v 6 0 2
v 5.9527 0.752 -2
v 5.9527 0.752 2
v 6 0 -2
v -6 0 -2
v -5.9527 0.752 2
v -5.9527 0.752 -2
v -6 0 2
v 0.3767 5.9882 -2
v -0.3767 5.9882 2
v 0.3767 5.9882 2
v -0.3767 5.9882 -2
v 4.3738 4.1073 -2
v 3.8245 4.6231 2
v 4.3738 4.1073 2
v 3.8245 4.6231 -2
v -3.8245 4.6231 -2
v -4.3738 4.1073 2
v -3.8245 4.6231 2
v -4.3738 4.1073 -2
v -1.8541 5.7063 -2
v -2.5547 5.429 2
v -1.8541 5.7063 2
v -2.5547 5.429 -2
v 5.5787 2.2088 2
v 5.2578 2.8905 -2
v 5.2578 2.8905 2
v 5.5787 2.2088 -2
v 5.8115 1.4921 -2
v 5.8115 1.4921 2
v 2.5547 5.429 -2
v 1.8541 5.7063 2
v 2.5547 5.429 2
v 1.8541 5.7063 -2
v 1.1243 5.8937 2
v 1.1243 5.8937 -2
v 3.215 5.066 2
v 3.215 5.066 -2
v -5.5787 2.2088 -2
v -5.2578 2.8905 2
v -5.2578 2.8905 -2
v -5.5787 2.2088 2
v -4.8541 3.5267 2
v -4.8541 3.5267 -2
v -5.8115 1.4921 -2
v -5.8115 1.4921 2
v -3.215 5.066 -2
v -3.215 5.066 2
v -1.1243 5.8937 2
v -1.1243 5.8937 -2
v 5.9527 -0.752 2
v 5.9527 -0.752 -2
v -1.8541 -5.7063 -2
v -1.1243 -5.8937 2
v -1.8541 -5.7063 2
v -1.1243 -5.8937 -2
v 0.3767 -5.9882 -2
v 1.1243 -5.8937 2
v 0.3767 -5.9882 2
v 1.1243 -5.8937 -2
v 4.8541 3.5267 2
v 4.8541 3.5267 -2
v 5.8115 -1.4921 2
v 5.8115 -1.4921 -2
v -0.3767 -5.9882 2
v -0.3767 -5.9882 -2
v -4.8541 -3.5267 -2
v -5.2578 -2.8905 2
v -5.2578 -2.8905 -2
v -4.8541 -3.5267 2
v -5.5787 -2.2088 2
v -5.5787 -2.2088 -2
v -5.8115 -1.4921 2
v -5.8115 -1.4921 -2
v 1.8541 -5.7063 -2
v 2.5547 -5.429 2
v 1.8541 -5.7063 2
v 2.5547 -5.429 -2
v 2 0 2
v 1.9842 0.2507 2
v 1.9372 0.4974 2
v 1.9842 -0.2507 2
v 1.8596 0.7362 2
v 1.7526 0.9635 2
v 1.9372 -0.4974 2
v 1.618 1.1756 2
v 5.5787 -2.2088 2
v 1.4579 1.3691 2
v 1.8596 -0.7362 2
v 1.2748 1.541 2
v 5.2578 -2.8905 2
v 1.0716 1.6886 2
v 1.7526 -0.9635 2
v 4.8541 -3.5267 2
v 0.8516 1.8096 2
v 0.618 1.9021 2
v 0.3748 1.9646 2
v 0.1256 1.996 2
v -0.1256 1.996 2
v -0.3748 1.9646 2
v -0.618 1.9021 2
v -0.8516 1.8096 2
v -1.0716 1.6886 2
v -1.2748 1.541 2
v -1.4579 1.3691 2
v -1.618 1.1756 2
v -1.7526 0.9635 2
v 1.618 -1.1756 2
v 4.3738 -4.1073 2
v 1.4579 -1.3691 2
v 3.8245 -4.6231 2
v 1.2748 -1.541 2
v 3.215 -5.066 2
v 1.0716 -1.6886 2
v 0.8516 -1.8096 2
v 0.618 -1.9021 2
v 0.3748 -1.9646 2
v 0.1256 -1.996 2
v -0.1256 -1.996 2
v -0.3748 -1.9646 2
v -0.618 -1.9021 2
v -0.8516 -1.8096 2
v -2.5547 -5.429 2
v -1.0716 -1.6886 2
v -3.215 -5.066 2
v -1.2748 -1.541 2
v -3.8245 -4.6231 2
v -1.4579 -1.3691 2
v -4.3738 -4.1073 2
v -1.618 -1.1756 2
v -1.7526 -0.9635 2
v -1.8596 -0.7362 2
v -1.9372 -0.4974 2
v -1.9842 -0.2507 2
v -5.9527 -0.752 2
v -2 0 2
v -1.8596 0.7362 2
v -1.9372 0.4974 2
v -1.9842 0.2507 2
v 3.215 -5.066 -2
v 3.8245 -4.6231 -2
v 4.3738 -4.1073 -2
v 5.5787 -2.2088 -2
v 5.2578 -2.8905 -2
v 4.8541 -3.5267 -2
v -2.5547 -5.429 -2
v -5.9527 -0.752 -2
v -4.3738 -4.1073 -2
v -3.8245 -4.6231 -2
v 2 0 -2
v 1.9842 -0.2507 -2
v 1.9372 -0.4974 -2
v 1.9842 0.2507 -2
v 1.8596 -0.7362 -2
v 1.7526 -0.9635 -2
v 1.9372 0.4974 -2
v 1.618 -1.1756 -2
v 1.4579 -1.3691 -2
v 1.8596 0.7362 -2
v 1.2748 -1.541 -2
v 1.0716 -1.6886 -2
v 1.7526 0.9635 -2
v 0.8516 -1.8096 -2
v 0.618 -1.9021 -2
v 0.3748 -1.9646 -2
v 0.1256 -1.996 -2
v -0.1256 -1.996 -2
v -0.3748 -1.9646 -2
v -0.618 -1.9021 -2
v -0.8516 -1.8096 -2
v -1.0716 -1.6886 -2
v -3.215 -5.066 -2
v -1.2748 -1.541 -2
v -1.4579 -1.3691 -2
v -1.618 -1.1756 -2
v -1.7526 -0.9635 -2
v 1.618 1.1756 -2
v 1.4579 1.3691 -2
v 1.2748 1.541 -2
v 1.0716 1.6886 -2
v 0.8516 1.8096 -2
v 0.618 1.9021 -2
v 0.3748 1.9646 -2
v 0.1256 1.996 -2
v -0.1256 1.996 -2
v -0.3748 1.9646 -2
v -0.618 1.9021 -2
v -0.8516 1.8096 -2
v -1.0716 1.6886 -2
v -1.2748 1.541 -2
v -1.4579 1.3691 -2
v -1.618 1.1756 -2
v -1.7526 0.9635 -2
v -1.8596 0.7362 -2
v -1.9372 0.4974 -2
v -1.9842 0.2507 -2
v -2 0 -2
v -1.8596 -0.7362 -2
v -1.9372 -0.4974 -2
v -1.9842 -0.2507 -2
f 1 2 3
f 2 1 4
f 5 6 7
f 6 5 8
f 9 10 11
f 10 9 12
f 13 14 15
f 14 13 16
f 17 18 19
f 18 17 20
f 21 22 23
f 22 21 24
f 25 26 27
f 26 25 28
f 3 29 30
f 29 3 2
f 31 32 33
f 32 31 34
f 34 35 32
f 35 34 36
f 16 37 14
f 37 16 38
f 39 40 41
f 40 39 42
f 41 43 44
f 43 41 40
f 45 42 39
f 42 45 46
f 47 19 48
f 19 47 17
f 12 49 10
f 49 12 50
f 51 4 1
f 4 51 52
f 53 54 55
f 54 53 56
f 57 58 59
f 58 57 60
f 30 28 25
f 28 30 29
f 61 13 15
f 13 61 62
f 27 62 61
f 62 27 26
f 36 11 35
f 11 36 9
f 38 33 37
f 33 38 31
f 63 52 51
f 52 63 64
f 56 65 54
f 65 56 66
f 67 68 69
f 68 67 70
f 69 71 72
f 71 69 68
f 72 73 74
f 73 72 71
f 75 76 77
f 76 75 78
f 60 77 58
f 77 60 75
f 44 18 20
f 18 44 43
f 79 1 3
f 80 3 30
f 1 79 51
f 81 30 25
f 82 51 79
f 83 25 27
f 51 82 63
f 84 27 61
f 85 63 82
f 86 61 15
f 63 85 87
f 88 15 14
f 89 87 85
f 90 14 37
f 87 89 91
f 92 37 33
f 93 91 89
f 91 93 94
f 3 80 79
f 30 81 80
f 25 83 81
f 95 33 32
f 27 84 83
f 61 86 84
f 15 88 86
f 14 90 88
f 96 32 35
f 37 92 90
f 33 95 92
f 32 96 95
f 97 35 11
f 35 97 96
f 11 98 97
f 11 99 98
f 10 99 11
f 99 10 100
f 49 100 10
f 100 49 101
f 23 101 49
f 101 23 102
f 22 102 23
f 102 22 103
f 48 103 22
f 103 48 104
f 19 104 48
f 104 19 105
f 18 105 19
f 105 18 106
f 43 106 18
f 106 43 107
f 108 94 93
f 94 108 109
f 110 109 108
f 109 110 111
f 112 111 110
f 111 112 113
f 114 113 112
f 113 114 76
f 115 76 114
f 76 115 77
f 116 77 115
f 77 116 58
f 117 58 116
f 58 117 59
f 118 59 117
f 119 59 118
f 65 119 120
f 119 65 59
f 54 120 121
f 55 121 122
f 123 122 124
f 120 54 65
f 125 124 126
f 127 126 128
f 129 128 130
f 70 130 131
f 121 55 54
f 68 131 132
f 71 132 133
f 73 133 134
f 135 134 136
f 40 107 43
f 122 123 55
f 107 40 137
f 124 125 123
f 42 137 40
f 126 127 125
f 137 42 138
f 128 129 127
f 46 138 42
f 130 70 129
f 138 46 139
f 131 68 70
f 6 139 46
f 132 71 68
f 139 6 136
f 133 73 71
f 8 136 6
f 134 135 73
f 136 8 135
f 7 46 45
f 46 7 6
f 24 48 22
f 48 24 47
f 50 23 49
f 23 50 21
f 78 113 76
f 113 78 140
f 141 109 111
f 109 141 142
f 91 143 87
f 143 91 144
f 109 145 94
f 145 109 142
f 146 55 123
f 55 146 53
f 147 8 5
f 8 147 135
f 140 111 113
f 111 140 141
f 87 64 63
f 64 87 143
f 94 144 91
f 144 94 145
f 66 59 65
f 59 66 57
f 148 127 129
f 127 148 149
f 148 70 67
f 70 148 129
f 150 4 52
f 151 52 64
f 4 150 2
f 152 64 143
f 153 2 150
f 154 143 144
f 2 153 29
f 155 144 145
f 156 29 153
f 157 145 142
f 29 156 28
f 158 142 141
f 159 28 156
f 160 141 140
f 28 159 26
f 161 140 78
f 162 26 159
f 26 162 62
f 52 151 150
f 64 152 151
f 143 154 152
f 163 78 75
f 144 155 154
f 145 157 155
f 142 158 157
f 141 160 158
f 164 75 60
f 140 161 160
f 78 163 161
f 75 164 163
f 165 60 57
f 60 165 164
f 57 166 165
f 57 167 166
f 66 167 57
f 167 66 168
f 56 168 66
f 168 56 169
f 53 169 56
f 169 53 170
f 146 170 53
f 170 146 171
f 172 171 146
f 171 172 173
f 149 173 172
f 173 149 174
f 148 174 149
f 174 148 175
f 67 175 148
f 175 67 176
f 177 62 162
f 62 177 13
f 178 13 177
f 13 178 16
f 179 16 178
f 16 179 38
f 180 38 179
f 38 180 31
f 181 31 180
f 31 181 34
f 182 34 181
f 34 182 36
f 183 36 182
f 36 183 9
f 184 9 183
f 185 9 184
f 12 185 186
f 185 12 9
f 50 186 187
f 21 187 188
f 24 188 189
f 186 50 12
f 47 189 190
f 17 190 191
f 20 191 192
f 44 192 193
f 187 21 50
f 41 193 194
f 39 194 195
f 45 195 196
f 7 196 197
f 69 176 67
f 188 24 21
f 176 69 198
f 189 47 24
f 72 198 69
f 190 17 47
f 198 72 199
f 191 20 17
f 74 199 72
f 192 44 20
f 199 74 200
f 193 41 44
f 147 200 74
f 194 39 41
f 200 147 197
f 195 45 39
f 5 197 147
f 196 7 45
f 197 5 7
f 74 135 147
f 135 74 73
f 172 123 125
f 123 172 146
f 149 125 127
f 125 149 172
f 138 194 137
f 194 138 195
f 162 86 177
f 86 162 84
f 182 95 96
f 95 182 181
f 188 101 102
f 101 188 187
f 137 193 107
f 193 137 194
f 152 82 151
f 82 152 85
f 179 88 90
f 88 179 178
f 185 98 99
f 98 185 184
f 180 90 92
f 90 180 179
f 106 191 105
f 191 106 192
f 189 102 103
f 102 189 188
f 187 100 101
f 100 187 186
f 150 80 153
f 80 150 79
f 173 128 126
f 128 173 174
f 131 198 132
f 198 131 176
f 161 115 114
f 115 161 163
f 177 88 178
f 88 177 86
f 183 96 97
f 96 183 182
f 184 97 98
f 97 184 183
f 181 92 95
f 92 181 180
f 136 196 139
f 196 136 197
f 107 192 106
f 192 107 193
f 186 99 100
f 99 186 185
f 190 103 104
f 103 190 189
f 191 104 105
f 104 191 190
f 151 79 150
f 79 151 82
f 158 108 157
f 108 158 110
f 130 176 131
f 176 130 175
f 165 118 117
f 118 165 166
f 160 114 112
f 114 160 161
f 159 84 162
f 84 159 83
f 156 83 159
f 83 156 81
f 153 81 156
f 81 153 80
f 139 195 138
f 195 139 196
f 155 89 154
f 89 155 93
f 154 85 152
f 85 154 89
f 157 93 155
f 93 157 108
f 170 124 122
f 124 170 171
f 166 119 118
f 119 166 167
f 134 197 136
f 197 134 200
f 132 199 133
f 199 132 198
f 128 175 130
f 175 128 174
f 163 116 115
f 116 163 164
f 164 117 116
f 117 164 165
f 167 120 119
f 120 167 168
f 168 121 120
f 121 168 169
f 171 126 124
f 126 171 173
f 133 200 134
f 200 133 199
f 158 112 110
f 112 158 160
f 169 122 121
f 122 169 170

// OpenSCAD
$fn = 50;


difference() {
	union() {
		translate(v = [0, 0, -2.0000000000]) {
			cylinder(h = 4, r = 6.0000000000);
		}
	}
	union() {
		translate(v = [0, 0, -100.0000000000]) {
			cylinder(h = 200, r = 2.0000000000);
		}
	}
}
